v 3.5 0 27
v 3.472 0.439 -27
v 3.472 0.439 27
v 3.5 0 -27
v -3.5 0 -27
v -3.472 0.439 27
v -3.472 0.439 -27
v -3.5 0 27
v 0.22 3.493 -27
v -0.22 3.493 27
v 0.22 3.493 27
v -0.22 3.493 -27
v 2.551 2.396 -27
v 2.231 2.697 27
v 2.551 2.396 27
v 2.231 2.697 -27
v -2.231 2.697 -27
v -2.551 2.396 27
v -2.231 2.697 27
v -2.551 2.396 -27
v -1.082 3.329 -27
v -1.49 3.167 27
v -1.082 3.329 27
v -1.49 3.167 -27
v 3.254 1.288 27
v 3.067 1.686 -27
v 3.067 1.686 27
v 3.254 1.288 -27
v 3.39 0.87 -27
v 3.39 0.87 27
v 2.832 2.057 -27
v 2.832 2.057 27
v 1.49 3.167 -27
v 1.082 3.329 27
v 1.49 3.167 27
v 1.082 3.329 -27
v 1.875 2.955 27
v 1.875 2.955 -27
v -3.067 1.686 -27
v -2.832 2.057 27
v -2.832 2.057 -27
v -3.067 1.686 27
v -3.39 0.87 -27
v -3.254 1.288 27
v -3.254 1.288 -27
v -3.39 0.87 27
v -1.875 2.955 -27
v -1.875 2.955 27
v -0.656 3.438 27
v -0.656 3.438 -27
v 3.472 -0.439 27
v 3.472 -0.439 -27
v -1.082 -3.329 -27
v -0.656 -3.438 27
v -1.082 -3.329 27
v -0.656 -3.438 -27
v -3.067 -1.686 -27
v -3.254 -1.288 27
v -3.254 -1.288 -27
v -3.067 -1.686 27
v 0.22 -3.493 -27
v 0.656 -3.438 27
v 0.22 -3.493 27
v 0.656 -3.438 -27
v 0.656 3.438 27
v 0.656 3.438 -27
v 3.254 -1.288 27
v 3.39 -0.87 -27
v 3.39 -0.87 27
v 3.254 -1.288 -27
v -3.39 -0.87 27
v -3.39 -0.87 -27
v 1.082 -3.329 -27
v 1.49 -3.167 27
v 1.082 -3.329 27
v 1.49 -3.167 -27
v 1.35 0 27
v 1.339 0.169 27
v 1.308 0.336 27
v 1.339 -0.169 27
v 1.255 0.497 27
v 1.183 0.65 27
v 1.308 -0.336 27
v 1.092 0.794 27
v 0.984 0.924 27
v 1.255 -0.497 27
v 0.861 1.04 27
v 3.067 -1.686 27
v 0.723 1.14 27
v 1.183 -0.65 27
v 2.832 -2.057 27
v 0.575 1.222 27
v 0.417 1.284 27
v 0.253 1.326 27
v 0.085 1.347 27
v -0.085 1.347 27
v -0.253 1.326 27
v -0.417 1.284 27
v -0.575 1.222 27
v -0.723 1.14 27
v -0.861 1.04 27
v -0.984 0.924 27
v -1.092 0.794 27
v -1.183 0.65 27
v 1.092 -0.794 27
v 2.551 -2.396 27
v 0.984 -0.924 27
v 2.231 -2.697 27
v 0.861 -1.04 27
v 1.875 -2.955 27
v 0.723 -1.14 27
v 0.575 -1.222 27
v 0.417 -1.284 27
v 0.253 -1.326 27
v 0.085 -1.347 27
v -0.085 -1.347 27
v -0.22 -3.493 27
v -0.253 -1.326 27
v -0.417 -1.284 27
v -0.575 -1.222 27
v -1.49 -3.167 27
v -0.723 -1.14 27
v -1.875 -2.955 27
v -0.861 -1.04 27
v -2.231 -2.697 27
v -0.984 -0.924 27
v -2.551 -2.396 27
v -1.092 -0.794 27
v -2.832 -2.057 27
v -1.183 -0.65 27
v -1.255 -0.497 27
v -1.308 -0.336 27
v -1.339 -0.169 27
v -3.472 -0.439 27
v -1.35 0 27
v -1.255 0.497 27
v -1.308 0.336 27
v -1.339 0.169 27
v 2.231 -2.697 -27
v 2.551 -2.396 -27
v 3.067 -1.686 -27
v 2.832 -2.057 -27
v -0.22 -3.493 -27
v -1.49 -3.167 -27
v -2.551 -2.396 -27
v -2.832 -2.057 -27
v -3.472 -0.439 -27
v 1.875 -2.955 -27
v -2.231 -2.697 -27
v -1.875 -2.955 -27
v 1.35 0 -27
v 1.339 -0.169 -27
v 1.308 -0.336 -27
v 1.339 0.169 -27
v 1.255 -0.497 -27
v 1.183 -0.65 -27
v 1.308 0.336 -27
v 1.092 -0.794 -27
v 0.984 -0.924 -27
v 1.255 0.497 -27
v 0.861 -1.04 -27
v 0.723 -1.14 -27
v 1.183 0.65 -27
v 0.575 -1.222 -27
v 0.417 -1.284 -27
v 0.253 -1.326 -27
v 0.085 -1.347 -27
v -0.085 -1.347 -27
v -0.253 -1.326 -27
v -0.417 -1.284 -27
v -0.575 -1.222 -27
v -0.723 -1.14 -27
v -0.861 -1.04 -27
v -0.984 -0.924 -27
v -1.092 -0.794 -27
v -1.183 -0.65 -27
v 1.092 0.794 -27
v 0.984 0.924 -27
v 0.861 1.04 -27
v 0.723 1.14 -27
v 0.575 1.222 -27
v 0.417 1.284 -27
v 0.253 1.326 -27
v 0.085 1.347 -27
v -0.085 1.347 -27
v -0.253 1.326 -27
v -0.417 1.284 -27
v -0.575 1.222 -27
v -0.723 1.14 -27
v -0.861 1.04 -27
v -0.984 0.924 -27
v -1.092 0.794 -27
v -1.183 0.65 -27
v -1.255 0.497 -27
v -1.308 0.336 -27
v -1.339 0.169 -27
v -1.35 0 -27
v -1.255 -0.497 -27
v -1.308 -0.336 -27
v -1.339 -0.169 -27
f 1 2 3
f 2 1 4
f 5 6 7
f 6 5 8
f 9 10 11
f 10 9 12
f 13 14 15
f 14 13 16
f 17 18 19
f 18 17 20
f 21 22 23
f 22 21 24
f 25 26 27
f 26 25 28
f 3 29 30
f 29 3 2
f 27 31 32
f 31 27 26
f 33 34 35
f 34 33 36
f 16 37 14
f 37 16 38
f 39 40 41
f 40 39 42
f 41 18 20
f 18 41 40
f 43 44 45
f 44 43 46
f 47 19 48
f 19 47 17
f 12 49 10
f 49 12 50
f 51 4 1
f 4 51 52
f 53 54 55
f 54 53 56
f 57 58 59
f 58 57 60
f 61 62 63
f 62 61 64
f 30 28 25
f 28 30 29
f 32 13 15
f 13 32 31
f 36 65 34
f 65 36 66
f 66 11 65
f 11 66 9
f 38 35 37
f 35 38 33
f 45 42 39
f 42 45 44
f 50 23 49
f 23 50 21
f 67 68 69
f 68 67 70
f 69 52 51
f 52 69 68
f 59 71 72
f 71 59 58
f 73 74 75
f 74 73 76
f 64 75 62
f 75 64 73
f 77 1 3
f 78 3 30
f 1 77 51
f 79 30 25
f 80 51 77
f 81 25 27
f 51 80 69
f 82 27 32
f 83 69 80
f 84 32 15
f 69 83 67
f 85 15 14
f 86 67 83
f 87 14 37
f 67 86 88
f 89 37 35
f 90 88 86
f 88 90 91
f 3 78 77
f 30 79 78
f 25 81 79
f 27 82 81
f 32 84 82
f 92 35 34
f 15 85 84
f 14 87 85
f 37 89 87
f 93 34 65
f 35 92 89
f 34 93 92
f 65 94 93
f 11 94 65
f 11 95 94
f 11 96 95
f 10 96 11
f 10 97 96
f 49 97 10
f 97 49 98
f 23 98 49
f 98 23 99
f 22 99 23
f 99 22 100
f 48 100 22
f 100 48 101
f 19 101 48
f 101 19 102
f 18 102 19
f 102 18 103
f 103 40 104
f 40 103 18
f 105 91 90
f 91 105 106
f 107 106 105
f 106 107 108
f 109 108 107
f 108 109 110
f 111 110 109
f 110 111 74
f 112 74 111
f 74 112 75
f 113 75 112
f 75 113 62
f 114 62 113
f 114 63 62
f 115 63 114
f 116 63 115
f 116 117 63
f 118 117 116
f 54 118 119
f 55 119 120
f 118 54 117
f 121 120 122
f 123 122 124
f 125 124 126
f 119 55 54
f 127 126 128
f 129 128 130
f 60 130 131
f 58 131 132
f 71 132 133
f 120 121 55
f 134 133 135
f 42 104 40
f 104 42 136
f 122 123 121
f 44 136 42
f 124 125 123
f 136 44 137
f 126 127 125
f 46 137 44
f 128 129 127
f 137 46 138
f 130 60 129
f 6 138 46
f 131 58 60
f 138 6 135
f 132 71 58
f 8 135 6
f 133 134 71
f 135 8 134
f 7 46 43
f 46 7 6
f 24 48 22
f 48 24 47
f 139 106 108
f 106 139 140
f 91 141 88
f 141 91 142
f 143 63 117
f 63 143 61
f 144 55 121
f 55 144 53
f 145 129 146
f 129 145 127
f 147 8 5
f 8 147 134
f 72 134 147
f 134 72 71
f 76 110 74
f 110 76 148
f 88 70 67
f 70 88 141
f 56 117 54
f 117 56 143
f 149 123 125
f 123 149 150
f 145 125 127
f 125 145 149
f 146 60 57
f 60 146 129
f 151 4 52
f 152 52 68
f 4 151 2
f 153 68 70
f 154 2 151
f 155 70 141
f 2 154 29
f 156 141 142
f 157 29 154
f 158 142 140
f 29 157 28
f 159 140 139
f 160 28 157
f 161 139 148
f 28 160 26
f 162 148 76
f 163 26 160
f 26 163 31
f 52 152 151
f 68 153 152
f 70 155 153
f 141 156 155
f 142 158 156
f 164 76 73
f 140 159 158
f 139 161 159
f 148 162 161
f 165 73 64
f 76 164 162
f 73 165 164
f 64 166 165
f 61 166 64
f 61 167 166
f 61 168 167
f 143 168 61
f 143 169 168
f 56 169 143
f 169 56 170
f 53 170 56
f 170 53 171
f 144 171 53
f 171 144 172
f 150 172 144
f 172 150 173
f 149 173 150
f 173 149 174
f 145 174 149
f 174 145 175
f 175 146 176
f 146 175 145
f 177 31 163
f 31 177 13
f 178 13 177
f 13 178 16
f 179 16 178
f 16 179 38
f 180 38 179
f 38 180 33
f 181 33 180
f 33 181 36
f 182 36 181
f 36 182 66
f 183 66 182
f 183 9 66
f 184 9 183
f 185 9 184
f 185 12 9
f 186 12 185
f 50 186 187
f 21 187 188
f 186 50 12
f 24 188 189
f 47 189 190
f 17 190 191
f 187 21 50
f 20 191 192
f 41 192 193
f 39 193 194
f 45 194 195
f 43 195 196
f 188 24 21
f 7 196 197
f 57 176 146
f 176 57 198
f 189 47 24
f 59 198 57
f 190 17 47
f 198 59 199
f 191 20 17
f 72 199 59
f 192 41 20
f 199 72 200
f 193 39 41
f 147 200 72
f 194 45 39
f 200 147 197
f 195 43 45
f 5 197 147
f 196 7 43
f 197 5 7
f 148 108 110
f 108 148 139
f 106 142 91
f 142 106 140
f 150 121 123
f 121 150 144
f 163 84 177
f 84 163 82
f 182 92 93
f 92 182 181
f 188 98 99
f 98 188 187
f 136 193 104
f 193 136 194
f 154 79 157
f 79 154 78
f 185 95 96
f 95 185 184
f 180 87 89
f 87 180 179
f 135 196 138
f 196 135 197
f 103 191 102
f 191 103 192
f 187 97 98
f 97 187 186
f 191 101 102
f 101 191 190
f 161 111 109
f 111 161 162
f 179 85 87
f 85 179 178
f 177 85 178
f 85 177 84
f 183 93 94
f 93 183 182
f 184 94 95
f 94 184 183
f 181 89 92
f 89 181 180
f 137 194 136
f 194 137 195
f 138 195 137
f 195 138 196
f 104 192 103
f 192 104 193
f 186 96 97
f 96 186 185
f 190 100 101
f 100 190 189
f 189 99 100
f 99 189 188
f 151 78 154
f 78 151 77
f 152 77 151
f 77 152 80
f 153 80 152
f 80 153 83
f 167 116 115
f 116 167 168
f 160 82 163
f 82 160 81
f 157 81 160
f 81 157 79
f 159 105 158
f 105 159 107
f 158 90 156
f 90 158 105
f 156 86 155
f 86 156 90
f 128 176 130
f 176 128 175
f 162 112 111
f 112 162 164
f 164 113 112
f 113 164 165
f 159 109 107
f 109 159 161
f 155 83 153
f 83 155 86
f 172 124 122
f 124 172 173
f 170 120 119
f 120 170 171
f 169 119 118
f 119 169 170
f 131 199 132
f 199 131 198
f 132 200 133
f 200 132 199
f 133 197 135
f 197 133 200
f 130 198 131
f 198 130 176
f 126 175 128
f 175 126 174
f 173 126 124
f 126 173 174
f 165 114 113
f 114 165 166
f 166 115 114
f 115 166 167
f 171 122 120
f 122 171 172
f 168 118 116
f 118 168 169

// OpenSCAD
$fn = 50;


difference() {
	union() {
		translate(v = [0, 0, -27.0000000000]) {
			cylinder(h = 54, r = 3.5000000000);
		}
	}
	union() {
		translate(v = [0, 0, -100.0000000000]) {
			cylinder(h = 200, r = 1.3500000000);
		}
	}
}
